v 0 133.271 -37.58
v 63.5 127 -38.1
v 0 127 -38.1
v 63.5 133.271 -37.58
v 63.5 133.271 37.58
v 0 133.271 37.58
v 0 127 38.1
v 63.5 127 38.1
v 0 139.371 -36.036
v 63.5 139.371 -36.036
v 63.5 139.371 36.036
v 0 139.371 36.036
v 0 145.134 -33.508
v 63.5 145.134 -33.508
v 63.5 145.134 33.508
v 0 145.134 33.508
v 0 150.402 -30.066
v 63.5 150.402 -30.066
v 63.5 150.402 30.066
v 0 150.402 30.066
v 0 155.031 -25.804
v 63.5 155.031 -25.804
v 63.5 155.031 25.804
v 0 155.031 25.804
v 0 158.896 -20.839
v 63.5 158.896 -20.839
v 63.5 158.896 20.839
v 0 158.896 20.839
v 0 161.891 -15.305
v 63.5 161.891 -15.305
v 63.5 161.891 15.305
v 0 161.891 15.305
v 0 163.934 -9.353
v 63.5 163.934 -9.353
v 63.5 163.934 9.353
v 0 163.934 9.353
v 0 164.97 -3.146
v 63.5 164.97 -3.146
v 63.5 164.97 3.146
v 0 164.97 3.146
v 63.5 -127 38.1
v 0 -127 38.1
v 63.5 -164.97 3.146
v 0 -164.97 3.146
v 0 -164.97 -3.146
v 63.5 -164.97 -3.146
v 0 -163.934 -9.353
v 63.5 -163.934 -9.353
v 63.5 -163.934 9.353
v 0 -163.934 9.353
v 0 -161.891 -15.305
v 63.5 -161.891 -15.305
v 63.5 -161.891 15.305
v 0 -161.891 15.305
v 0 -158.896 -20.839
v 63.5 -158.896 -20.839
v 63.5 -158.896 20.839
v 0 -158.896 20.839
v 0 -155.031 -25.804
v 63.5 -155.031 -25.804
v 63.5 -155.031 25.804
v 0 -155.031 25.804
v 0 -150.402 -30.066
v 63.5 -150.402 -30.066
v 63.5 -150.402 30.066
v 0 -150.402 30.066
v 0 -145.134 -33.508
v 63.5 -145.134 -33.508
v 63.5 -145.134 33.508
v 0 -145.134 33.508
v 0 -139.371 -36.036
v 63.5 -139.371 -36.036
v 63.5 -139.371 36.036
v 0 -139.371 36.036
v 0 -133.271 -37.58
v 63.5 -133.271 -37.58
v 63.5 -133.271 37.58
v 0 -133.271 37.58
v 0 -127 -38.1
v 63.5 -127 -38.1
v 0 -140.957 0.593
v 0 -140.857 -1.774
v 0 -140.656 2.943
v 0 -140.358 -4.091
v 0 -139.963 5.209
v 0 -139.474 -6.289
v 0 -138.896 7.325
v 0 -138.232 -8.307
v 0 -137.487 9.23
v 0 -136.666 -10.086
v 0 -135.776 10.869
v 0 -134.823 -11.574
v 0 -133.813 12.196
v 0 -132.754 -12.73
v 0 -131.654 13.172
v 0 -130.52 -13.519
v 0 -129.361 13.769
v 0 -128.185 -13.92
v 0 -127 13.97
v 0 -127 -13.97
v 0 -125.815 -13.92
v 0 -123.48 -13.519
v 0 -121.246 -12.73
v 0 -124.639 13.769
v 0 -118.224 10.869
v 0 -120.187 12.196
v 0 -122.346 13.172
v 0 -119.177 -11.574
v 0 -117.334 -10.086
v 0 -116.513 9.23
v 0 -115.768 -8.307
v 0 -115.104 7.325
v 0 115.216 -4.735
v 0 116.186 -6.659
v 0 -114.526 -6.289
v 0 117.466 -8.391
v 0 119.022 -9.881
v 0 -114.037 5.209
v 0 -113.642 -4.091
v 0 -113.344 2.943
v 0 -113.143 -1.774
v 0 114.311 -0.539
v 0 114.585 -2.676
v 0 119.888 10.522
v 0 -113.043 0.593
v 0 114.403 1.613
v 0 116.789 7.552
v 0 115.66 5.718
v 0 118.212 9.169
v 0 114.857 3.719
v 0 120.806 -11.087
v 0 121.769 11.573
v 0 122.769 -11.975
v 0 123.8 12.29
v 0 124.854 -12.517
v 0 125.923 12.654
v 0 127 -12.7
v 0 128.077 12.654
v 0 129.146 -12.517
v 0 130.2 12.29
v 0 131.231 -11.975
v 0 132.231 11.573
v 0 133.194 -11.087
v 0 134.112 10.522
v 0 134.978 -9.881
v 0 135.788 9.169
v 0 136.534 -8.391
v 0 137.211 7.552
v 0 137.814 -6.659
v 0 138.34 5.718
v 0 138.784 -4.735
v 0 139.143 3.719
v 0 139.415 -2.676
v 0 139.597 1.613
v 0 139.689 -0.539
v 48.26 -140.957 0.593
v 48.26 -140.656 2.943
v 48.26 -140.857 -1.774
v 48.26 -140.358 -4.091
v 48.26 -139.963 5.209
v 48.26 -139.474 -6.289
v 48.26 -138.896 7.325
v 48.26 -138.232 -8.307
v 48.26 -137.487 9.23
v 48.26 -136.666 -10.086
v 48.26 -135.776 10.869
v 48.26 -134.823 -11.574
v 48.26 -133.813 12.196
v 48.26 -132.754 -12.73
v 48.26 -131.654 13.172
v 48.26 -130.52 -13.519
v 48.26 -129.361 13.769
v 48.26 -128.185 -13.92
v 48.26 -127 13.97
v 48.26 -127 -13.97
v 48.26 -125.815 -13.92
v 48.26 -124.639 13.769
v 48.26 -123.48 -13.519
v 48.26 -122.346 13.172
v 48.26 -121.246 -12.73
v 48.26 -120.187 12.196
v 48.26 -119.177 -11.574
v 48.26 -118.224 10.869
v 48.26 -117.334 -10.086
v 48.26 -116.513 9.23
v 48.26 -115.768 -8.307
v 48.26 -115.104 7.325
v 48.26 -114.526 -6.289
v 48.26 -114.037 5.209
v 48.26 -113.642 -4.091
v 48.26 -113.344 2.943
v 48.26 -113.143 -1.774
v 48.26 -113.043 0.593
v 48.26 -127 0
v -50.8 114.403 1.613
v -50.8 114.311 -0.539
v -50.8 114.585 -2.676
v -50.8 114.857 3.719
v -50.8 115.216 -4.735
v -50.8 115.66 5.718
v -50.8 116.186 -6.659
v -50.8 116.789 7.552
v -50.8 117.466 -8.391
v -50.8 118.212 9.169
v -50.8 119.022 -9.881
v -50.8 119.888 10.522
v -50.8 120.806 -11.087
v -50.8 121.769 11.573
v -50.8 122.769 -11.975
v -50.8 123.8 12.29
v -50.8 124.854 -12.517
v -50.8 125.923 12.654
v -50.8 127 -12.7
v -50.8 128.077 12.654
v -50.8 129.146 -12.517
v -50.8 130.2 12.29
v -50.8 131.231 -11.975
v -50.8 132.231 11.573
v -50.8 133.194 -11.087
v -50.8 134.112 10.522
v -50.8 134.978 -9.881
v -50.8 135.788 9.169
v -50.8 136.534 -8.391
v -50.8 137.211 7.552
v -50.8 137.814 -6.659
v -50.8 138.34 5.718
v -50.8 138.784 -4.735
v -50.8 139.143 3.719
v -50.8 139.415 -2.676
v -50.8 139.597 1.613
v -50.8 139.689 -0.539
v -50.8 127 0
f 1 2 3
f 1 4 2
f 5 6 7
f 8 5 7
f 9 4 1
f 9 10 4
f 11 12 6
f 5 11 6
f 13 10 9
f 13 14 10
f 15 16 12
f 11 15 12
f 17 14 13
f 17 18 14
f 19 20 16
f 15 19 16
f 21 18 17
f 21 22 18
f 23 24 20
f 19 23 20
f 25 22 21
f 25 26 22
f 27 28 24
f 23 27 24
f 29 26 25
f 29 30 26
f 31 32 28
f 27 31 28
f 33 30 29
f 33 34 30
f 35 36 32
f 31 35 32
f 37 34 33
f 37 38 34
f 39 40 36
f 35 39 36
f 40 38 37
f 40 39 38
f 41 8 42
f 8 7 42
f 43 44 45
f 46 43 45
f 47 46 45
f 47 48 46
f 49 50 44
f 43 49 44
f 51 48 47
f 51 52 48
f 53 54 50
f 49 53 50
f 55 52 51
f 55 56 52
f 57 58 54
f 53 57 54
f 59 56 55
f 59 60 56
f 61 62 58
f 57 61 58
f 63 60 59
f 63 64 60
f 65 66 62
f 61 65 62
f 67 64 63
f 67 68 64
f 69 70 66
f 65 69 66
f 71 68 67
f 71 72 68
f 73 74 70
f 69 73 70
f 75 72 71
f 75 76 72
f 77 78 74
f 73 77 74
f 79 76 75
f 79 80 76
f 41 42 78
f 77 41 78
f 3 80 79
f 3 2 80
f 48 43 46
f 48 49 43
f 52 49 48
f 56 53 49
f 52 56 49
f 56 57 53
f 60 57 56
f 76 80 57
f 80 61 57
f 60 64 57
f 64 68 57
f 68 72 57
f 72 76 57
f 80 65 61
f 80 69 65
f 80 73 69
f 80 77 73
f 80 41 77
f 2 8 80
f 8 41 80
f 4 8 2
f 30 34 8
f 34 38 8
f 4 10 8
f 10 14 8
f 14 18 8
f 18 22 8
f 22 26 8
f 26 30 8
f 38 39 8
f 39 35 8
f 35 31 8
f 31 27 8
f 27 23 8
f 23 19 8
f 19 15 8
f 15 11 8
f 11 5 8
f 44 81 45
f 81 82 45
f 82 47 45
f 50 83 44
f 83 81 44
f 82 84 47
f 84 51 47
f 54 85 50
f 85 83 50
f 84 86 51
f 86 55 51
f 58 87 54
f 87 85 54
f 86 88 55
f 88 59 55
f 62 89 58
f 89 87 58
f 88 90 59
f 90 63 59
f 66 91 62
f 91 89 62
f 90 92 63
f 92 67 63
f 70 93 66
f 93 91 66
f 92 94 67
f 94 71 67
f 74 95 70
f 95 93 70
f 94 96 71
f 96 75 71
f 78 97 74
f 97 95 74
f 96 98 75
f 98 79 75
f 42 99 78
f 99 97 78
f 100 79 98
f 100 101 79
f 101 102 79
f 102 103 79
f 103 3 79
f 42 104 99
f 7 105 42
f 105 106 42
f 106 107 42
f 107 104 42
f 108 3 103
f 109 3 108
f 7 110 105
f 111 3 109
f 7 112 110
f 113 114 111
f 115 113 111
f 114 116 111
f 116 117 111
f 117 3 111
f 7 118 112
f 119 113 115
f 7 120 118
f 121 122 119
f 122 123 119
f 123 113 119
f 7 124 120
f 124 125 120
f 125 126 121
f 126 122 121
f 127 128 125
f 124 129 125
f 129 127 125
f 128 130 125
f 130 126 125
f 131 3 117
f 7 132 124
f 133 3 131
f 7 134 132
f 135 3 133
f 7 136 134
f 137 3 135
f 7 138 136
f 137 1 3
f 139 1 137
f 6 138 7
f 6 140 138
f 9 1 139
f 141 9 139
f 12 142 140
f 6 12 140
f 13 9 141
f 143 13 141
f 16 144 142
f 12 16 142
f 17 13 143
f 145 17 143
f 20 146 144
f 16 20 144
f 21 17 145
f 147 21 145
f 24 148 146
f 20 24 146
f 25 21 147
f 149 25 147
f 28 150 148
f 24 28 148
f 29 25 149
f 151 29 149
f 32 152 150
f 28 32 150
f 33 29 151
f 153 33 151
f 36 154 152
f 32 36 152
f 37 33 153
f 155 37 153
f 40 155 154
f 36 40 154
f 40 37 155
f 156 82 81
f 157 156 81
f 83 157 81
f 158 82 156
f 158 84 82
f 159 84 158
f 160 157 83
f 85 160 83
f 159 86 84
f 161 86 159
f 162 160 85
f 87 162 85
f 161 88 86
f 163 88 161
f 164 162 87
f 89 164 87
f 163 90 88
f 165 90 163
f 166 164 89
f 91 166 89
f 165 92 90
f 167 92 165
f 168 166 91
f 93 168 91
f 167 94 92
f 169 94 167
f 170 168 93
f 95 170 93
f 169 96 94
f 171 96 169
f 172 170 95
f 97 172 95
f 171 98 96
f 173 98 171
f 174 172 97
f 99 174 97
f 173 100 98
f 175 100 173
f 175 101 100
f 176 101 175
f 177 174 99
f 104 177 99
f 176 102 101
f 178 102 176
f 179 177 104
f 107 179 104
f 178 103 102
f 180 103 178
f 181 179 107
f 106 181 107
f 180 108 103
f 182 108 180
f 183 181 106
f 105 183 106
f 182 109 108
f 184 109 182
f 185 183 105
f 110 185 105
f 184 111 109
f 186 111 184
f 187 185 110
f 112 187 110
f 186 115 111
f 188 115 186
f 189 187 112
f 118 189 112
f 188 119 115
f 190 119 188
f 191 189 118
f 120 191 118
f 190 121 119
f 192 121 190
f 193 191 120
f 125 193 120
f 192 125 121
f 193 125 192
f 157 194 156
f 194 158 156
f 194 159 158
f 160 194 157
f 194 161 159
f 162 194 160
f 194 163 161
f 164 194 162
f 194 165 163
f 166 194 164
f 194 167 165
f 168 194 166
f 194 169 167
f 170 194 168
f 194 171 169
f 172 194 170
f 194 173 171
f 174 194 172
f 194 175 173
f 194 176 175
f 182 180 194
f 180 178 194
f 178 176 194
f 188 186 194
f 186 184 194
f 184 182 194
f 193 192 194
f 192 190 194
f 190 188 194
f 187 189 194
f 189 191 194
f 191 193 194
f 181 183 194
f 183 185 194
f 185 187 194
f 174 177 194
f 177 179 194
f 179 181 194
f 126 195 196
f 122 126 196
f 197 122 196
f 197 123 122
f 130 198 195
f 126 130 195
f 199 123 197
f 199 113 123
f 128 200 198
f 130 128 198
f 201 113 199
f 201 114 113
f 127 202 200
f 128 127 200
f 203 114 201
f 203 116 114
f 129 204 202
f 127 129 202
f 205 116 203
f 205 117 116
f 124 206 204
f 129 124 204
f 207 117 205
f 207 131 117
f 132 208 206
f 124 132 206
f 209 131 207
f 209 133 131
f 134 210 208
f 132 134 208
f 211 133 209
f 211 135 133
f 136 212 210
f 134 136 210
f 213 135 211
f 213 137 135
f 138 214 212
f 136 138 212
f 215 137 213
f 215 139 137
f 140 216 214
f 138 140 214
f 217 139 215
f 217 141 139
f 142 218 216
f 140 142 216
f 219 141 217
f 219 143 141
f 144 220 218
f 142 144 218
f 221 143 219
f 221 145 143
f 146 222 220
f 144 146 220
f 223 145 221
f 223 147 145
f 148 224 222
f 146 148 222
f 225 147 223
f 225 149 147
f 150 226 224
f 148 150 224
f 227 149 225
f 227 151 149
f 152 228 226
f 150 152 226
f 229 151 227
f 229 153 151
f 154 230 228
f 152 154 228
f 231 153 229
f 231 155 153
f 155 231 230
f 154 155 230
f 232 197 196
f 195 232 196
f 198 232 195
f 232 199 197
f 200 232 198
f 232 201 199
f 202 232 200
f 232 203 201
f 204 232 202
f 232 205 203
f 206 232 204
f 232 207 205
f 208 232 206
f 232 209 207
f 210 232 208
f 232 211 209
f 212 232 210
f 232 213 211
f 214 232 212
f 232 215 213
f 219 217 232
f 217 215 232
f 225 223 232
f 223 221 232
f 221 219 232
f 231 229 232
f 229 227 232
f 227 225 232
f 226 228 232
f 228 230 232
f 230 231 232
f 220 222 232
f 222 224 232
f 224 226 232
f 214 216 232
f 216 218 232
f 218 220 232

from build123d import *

# Parameters (mm, degrees)
BOSS_EXTRUDE1_DEPTH = 63.5
SKETCH2_R           = 13.97
CUT_EXTRUDE1_DEPTH  = 48.26
SKETCH3_R           = 12.7
BOSS_EXTRUDE2_DEPTH = 50.8


with BuildPart() as part:
    # Sketch1 → Boss-Extrude1 (new body)
    with BuildSketch(Plane(origin=(0, 0, 0), x_dir=(0, 0, -1), z_dir=(1, 0, 0))):
        with BuildLine():
            Line((38.1, 127), (38.1, -127))
            ThreePointArc((38.1, -127), (0, -165.1), (-38.1, -127))
            Line((-38.1, -127), (-38.1, 127))
            ThreePointArc((-38.1, 127), (0, 165.1), (38.1, 127))
        make_face()
    extrude(amount=BOSS_EXTRUDE1_DEPTH)

    # Sketch2 → Cut-Extrude1 (cut)
    with BuildSketch(Plane(origin=(0, 0, 0), x_dir=(0, 0, -1), z_dir=(1, 0, 0))):
        with Locations(Location((0, -127, 0), (0, 0, 180))):
            Circle(SKETCH2_R)
    extrude(amount=CUT_EXTRUDE1_DEPTH, mode=Mode.SUBTRACT)

    # Sketch3 → Boss-Extrude2 (add)
    with BuildSketch(Plane(origin=(0, 0, 0), x_dir=(0, 0, -1), z_dir=(1, 0, 0))):
        with Locations((0, 127)):
            Circle(SKETCH3_R)
    extrude(amount=-BOSS_EXTRUDE2_DEPTH)


solid = part.part
